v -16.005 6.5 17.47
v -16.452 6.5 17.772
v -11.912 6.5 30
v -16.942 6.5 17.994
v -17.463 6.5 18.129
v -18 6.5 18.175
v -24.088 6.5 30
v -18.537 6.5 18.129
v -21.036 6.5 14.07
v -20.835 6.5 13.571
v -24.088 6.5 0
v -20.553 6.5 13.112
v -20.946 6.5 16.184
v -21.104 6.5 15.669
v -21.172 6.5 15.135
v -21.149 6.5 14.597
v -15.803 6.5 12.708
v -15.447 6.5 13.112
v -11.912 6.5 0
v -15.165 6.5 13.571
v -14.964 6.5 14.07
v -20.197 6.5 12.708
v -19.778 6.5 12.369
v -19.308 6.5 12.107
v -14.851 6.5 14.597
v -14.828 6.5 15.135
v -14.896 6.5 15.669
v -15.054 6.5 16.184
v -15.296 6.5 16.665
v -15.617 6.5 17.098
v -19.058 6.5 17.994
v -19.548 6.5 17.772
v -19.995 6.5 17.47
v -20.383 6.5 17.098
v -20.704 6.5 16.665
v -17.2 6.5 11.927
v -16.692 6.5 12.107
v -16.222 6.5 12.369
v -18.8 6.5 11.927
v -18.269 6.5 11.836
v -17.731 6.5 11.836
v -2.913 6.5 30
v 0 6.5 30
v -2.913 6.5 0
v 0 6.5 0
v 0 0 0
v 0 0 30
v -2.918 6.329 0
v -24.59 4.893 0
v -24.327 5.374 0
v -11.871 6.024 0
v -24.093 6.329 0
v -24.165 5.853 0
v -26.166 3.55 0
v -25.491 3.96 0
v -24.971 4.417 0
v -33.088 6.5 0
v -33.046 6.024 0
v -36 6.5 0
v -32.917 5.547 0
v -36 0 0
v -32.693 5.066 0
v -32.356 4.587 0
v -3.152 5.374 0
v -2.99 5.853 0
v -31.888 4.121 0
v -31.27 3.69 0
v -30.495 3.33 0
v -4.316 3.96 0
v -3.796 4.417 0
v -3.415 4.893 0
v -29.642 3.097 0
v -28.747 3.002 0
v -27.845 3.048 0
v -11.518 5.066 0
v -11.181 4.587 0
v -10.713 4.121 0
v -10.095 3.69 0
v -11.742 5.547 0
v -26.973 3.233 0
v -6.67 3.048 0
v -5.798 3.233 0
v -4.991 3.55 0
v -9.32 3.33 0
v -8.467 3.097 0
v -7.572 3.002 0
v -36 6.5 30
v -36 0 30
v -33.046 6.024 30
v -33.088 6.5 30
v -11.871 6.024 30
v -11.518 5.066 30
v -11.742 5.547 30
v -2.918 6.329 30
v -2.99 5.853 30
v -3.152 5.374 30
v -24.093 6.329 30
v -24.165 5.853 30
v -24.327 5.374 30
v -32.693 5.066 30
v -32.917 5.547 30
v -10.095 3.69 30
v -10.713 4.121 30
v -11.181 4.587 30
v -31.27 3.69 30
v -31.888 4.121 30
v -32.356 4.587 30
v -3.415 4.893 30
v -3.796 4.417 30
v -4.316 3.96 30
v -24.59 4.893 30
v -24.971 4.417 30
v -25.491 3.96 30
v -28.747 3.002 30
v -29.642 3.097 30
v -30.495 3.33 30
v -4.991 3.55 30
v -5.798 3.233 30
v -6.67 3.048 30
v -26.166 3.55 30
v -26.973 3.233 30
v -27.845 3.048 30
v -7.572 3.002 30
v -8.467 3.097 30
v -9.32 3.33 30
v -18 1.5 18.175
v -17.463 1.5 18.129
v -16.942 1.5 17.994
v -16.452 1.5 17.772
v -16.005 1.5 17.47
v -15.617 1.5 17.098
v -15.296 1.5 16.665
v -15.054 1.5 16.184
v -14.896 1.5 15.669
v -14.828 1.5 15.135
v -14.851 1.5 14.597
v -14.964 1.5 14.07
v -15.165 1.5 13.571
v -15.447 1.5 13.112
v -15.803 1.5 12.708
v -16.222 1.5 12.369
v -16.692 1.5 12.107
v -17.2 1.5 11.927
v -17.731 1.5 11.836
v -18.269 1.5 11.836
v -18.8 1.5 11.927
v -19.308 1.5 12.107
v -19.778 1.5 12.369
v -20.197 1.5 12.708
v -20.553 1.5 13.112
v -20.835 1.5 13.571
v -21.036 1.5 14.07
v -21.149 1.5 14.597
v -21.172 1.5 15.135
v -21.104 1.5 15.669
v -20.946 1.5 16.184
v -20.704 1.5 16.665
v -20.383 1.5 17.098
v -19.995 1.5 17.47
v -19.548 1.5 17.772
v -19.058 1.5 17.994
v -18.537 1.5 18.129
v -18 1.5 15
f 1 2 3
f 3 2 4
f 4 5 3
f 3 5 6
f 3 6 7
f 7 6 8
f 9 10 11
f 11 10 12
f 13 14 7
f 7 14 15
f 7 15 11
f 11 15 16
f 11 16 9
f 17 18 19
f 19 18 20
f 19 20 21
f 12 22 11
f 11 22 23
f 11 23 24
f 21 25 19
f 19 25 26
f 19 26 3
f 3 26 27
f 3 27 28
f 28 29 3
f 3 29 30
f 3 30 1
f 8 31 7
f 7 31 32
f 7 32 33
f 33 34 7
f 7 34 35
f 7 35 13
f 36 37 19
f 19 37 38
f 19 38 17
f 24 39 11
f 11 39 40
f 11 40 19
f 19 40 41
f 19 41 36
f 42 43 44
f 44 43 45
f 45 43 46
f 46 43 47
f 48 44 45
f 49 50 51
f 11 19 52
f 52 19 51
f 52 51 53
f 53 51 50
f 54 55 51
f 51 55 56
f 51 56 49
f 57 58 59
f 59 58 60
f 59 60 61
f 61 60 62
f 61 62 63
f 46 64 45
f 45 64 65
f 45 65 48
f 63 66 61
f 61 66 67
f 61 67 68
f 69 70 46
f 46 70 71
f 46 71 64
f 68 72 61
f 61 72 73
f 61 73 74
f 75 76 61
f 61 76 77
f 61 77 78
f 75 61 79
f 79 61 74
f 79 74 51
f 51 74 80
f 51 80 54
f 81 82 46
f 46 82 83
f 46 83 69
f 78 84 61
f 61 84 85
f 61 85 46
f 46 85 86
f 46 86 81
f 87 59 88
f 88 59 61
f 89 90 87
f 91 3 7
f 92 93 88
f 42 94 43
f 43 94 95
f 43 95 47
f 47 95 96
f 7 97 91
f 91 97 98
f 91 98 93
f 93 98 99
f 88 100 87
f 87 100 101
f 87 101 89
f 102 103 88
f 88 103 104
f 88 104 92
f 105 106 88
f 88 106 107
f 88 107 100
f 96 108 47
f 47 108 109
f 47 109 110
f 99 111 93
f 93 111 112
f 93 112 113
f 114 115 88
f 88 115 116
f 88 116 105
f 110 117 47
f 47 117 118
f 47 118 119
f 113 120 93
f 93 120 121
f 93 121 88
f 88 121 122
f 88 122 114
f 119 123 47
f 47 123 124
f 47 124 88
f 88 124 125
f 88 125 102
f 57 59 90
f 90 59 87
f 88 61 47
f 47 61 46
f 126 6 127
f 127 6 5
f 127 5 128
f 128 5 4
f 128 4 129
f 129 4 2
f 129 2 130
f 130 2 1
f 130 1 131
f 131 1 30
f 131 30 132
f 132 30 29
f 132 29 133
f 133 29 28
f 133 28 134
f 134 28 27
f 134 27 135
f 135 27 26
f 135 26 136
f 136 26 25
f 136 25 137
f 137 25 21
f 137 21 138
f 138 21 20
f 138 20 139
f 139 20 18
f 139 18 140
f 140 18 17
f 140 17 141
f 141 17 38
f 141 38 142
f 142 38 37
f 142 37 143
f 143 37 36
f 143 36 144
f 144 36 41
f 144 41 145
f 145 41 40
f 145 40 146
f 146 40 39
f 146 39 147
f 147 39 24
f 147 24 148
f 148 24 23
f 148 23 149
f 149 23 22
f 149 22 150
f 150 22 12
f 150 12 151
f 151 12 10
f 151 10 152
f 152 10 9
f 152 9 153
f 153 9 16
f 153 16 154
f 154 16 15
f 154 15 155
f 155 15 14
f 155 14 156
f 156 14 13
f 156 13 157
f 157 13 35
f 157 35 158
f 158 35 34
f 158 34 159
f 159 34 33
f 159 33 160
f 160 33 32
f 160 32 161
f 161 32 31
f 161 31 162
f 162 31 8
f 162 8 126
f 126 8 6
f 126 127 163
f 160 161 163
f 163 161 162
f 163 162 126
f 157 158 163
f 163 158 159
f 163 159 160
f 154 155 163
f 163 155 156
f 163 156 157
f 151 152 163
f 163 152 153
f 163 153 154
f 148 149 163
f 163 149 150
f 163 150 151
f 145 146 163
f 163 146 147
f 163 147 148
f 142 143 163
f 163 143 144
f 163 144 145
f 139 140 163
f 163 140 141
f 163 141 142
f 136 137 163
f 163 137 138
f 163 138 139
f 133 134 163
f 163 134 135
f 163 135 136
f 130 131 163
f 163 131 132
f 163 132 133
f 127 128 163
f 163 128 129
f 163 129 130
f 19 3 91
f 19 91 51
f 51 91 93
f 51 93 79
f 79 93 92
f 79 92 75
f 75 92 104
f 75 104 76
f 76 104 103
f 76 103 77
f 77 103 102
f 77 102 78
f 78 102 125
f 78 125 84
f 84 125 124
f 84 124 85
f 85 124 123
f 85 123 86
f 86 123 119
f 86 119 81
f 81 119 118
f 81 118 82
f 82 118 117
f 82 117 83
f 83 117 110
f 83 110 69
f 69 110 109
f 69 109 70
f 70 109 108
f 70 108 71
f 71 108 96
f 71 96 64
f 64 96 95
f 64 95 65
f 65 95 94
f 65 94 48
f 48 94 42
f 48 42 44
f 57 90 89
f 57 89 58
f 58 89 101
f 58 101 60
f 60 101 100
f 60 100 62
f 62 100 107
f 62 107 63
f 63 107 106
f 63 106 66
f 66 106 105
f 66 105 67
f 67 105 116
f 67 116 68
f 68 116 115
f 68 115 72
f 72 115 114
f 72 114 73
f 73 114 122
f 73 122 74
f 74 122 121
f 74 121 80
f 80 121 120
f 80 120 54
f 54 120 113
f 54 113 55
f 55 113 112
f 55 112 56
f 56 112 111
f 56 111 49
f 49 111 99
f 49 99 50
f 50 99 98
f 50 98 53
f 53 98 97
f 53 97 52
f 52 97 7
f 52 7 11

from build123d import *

# Parameters (mm, degrees)
SKETCH1_W           = 36
SKETCH1_H           = 30
BOSS_EXTRUDE1_DEPTH = 6.5
SKETCH2_R           = 3.175
CUT_EXTRUDE1_DEPTH  = 5
SKETCH3_RX          = 4.5
SKETCH3_RY          = 3.5
CUT_EXTRUDE3_DEPTH  = 30


with BuildPart() as part:
    # Sketch1 → Boss-Extrude1 (new body)
    with BuildSketch(Plane(origin=(0, 0, 0), x_dir=(1, 0, 0), z_dir=(0, 1, 0))):
        with Locations((-18, -15)):
            Rectangle(SKETCH1_W, SKETCH1_H)
    extrude(amount=BOSS_EXTRUDE1_DEPTH)

    # Sketch2 → Cut-Extrude1 (cut)
    with BuildSketch(Plane(origin=(0, 6.5, 0), x_dir=(1, 0, 0), z_dir=(0, 1, 0))):
        with Locations((-18, -15)):
            Circle(SKETCH2_R)
    extrude(amount=-CUT_EXTRUDE1_DEPTH, mode=Mode.SUBTRACT)

    # Sketch3 → Cut-Extrude3 (cut)
    with BuildSketch(Plane.XY.offset(30)):
        with Locations(Location((-7.4125, 6.5), (0, 0, -180))):
            Ellipse(SKETCH3_RX, SKETCH3_RY)
        with Locations(Location((-28.5875, 6.5), (0, 0, 0))):
            Ellipse(SKETCH3_RX, SKETCH3_RY)
    extrude(amount=-CUT_EXTRUDE3_DEPTH, mode=Mode.SUBTRACT)


solid = part.part
